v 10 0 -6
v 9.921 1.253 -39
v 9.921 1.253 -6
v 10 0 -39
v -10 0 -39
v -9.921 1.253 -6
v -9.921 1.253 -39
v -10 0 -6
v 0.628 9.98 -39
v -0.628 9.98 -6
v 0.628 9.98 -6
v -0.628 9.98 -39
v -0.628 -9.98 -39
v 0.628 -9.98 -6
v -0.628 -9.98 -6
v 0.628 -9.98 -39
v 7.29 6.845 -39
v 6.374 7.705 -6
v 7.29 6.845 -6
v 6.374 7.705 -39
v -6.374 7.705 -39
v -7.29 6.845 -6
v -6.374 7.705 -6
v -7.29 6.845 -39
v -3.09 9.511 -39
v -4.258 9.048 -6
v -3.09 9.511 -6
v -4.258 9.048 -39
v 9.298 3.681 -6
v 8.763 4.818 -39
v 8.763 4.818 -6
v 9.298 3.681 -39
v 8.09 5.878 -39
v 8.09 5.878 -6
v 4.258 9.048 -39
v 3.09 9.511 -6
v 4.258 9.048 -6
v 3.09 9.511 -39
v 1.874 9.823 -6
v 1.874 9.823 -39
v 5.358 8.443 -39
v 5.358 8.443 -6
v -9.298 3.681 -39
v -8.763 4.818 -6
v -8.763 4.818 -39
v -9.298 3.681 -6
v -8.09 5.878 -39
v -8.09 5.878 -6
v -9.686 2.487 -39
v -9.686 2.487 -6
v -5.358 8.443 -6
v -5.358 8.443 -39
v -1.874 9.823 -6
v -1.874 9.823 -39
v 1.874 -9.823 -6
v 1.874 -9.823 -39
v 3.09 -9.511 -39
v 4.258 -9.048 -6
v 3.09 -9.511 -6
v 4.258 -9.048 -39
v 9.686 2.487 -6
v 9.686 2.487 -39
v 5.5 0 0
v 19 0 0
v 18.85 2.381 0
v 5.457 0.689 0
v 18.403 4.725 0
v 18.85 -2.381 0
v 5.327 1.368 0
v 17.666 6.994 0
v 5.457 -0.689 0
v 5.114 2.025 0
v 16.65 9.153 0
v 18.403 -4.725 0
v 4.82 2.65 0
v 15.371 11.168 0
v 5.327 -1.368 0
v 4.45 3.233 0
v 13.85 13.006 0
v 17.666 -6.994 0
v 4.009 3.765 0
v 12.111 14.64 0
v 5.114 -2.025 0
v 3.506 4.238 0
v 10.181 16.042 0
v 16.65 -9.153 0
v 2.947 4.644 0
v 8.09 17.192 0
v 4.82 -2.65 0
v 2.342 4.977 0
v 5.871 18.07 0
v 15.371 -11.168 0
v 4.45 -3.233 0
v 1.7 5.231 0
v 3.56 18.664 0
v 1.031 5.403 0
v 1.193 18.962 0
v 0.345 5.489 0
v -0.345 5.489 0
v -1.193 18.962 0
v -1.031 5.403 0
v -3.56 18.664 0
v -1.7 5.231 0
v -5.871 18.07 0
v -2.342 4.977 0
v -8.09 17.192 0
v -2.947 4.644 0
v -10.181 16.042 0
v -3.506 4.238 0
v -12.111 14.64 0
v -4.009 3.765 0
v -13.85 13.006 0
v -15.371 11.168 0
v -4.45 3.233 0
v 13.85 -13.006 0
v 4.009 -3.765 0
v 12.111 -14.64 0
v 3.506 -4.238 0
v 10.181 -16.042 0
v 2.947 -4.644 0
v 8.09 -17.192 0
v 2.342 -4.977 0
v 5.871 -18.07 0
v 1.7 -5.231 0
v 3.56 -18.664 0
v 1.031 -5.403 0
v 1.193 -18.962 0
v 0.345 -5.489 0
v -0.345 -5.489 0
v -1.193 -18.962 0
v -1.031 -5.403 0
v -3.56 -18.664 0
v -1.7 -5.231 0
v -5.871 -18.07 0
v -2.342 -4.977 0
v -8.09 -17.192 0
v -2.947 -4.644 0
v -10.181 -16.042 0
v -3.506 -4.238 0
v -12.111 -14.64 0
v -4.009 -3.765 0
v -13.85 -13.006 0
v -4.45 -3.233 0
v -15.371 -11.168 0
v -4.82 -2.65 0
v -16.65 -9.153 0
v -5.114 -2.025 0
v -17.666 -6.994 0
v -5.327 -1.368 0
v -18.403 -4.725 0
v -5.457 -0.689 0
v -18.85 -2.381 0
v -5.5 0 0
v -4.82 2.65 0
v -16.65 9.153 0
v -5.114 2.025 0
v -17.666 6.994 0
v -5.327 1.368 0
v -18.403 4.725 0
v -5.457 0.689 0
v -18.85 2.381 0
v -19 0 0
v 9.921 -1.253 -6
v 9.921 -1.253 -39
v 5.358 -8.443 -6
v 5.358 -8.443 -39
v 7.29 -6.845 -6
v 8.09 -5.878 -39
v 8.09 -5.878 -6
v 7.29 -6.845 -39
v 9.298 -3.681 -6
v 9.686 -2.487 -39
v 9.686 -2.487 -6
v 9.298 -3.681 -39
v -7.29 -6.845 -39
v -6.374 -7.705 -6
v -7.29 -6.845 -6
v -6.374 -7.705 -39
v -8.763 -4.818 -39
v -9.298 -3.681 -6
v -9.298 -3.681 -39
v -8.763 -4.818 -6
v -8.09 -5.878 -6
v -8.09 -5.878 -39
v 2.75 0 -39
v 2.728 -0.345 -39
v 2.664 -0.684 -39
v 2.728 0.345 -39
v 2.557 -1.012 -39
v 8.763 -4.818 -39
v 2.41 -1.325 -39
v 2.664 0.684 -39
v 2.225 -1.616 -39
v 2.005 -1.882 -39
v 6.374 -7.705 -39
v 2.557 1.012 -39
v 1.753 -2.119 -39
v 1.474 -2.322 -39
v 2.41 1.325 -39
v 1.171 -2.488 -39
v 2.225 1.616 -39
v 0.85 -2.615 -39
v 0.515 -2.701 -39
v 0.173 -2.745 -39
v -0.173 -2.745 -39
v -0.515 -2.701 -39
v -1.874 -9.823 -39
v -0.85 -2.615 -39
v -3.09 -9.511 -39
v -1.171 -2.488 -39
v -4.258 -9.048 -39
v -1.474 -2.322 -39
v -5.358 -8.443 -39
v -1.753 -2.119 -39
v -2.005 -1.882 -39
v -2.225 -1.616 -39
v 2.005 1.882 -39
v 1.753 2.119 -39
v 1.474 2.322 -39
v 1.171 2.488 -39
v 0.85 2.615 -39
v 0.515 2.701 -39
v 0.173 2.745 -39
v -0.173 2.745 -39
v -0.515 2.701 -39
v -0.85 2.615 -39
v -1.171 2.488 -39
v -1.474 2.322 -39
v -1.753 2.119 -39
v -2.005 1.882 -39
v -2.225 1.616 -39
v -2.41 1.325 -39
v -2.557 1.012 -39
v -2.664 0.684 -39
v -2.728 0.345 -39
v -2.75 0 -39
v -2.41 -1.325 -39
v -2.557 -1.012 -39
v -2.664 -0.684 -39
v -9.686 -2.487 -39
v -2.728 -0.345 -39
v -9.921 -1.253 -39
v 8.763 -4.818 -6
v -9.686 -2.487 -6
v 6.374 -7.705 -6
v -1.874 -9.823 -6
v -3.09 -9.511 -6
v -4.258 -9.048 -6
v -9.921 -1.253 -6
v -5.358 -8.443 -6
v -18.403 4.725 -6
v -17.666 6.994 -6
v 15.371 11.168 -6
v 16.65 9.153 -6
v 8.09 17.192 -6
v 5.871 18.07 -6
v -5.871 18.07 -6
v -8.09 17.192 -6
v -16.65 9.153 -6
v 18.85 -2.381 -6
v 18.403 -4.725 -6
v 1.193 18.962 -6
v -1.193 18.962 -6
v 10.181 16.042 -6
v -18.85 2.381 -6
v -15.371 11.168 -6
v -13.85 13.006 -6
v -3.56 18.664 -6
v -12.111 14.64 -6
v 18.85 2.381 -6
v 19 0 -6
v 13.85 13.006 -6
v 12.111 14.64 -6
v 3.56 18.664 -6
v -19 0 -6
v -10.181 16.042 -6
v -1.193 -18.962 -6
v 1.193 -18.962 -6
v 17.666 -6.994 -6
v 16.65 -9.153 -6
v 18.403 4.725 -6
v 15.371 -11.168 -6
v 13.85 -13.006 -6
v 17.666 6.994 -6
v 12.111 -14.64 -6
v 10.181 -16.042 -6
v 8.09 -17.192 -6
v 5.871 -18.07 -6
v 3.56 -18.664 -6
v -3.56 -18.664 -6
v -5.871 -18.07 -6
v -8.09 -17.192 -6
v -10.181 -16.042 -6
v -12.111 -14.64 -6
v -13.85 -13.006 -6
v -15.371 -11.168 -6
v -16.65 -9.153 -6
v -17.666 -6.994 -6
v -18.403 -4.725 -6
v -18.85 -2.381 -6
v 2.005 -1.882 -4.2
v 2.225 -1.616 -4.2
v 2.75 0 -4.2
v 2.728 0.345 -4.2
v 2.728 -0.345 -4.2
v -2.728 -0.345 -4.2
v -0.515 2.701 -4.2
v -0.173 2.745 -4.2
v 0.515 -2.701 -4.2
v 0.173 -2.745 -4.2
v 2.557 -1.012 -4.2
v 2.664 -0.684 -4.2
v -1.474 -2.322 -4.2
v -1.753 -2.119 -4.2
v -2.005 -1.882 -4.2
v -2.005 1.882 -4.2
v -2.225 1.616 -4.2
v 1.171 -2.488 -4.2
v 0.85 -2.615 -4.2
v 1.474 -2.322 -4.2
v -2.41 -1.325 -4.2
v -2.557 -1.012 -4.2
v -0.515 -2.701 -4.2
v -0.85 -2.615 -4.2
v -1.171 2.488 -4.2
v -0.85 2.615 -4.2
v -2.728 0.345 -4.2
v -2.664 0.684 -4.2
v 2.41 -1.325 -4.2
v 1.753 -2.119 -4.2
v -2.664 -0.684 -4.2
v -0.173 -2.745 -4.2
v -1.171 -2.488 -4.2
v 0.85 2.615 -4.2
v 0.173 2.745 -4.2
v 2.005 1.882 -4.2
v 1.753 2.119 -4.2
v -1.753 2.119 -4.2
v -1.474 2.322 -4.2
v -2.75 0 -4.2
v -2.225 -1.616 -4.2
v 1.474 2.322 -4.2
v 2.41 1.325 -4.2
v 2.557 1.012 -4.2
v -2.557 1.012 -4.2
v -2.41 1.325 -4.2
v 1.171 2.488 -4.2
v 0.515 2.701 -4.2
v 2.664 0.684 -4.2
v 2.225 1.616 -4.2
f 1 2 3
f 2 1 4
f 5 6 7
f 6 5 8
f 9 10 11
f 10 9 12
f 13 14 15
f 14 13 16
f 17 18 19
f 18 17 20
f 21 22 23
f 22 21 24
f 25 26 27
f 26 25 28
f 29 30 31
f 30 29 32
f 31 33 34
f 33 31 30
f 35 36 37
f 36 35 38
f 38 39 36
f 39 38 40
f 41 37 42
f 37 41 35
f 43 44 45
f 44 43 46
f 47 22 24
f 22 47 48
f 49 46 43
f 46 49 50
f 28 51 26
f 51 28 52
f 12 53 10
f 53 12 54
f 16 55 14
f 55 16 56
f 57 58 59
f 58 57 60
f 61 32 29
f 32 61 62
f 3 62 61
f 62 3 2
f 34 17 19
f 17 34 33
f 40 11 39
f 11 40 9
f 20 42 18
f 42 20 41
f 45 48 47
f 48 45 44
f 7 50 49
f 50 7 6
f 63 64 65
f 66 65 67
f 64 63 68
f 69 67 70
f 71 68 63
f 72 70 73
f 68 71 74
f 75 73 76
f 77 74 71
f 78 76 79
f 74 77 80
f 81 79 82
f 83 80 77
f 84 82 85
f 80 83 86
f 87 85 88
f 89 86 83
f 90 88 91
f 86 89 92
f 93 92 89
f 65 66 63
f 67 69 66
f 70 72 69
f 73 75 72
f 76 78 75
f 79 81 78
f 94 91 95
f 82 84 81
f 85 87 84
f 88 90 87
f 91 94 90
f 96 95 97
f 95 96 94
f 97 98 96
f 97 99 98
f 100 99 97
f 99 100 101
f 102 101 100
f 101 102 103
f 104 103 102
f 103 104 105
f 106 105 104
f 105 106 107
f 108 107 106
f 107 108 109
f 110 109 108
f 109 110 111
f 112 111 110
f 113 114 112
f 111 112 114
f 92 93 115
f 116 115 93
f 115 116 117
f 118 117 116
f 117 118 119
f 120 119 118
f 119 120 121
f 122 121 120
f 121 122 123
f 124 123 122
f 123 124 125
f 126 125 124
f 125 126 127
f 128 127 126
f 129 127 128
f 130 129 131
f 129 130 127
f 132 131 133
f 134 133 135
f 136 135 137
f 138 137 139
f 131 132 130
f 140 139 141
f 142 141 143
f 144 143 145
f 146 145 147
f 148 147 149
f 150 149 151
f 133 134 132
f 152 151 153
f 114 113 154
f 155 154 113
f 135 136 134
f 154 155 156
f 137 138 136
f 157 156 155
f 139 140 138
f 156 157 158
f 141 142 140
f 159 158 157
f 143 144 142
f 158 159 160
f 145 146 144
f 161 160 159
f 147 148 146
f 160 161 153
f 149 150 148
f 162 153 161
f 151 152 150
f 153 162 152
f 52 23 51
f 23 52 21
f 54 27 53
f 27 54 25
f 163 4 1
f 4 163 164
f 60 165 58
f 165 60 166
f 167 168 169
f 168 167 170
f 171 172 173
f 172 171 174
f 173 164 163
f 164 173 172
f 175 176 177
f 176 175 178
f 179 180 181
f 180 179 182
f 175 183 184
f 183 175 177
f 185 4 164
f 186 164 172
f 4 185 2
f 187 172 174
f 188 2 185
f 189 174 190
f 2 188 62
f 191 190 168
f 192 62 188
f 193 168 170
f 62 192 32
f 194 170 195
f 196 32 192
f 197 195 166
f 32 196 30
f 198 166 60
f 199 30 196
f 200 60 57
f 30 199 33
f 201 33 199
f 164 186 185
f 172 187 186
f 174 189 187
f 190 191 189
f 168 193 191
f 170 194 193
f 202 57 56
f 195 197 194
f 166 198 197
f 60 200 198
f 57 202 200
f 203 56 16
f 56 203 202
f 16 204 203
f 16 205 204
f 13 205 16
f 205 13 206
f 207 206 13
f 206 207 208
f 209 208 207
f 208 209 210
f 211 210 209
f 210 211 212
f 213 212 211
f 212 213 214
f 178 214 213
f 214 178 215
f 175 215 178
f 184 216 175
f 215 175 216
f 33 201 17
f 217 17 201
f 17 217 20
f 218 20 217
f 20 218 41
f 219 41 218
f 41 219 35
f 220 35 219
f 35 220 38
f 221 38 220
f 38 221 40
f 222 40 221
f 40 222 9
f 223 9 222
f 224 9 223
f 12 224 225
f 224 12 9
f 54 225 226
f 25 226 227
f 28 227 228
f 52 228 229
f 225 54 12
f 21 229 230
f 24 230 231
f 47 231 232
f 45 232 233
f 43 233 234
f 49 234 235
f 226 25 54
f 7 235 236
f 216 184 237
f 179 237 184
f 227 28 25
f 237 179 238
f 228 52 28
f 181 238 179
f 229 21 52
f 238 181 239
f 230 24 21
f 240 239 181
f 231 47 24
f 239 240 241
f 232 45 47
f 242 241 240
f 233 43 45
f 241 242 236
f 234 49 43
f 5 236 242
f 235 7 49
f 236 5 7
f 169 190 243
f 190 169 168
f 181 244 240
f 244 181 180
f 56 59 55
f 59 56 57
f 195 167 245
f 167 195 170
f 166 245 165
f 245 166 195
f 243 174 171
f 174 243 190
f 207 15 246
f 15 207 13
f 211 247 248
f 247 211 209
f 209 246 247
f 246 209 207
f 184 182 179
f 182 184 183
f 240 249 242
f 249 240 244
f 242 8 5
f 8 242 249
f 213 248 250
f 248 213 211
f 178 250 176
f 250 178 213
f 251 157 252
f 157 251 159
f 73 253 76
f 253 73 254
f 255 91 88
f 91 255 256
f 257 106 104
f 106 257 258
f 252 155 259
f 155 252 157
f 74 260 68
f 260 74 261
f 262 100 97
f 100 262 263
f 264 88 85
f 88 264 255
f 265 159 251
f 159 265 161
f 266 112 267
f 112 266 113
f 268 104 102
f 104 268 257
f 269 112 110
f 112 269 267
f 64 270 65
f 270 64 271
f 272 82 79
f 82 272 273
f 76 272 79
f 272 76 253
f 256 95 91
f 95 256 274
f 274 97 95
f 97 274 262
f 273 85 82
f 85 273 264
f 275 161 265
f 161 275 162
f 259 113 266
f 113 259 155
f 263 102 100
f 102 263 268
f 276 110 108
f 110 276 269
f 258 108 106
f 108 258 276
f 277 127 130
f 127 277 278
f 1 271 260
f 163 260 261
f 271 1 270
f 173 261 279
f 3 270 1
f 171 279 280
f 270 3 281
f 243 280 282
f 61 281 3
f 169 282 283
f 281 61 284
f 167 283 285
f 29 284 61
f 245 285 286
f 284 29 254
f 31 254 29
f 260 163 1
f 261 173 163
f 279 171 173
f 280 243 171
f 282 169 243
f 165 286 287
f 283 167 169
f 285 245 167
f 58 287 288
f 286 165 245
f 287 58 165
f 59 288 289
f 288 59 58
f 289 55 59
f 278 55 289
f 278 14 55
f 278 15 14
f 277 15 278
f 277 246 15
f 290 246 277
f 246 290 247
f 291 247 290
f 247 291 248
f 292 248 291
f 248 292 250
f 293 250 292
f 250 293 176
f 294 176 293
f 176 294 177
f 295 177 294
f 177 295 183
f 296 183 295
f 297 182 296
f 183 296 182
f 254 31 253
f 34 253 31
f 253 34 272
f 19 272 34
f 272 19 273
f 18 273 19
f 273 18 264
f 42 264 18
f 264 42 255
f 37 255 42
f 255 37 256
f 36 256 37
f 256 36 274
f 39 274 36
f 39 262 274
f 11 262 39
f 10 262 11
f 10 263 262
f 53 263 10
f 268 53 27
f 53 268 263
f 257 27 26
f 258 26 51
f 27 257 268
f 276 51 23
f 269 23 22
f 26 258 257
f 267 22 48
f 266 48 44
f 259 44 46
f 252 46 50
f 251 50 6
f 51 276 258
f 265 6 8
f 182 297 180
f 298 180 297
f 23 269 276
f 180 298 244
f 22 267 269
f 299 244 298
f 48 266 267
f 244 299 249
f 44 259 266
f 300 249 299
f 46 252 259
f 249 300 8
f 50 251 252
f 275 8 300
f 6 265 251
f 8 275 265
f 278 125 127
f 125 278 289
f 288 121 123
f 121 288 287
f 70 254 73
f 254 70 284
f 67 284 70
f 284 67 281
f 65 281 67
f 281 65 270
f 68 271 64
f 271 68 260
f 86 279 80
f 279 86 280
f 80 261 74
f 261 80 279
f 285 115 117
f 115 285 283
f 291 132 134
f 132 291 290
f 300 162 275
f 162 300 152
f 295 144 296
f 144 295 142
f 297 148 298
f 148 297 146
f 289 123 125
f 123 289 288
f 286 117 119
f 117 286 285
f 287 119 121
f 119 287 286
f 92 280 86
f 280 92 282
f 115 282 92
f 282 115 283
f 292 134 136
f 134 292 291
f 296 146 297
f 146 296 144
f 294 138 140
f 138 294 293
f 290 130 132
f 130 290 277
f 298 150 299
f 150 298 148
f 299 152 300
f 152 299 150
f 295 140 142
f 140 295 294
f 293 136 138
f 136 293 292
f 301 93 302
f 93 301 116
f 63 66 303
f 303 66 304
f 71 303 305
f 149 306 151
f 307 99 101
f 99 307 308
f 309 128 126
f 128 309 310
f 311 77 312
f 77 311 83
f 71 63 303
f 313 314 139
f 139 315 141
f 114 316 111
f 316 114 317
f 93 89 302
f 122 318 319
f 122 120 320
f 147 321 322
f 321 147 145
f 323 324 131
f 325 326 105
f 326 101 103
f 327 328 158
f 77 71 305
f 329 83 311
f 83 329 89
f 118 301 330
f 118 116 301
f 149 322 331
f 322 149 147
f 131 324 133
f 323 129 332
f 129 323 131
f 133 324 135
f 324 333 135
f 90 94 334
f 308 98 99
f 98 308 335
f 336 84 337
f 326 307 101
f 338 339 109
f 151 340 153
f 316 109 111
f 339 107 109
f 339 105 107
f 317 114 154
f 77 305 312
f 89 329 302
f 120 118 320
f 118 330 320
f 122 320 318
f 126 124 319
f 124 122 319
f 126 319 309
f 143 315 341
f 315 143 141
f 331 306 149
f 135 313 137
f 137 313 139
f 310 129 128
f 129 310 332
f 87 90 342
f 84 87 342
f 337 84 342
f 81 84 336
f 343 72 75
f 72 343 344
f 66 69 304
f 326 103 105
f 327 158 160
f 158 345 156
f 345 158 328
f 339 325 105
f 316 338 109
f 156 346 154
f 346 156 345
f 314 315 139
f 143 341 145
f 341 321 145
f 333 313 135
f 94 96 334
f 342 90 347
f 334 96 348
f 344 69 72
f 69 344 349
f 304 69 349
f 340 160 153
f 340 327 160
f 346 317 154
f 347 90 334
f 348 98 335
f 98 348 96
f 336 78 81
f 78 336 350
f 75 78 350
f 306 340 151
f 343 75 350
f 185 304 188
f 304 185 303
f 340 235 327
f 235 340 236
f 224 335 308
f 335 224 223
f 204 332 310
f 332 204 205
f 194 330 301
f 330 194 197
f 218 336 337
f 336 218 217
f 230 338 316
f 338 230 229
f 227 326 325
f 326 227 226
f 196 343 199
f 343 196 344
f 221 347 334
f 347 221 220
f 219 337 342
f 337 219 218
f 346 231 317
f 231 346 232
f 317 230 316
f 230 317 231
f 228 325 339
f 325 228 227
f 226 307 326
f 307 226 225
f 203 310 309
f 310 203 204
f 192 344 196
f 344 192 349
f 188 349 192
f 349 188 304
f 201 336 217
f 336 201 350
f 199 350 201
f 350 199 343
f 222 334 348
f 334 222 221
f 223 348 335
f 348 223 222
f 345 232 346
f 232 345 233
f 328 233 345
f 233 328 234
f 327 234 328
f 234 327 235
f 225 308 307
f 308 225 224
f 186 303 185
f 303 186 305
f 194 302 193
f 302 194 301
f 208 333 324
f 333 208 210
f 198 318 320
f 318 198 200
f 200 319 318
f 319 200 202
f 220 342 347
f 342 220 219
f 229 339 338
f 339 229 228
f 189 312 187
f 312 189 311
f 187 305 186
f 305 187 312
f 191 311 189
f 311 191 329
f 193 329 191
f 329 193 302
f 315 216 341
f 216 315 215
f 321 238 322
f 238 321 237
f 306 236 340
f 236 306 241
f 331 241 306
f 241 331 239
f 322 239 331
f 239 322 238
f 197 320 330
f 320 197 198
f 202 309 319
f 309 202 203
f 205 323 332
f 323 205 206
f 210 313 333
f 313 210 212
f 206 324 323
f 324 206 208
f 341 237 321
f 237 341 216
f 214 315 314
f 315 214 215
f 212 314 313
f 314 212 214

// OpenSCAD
$fn = 50;


difference() {
	union() {
		translate(v = [0, 0, -39.0000000000]) {
			cylinder(h = 39, r = 10.0000000000);
		}
		translate(v = [0, 0, -6.0000000000]) {
			cylinder(h = 6, r = 19.0000000000);
		}
	}
	union() {
		translate(v = [0, 0, 0]) {
			rotate(a = [0, 0, 0]) {
				difference() {
					union() {
						#translate(v = [0, 0, -39.0000000000]) {
							cylinder(h = 39, r = 2.2500000000);
						}
						#translate(v = [0, 0, -4.2000000000]) {
							cylinder(h = 4.2000000000, r1 = 2.7500000000, r2 = 5.5000000000);
						}
						#translate(v = [0, 0, -39.0000000000]) {
							cylinder(h = 39, r = 2.7500000000);
						}
						#translate(v = [0, 0, -39.0000000000]) {
							cylinder(h = 39, r = 2.2500000000);
						}
					}
					union();
				}
			}
		}
	}
}
